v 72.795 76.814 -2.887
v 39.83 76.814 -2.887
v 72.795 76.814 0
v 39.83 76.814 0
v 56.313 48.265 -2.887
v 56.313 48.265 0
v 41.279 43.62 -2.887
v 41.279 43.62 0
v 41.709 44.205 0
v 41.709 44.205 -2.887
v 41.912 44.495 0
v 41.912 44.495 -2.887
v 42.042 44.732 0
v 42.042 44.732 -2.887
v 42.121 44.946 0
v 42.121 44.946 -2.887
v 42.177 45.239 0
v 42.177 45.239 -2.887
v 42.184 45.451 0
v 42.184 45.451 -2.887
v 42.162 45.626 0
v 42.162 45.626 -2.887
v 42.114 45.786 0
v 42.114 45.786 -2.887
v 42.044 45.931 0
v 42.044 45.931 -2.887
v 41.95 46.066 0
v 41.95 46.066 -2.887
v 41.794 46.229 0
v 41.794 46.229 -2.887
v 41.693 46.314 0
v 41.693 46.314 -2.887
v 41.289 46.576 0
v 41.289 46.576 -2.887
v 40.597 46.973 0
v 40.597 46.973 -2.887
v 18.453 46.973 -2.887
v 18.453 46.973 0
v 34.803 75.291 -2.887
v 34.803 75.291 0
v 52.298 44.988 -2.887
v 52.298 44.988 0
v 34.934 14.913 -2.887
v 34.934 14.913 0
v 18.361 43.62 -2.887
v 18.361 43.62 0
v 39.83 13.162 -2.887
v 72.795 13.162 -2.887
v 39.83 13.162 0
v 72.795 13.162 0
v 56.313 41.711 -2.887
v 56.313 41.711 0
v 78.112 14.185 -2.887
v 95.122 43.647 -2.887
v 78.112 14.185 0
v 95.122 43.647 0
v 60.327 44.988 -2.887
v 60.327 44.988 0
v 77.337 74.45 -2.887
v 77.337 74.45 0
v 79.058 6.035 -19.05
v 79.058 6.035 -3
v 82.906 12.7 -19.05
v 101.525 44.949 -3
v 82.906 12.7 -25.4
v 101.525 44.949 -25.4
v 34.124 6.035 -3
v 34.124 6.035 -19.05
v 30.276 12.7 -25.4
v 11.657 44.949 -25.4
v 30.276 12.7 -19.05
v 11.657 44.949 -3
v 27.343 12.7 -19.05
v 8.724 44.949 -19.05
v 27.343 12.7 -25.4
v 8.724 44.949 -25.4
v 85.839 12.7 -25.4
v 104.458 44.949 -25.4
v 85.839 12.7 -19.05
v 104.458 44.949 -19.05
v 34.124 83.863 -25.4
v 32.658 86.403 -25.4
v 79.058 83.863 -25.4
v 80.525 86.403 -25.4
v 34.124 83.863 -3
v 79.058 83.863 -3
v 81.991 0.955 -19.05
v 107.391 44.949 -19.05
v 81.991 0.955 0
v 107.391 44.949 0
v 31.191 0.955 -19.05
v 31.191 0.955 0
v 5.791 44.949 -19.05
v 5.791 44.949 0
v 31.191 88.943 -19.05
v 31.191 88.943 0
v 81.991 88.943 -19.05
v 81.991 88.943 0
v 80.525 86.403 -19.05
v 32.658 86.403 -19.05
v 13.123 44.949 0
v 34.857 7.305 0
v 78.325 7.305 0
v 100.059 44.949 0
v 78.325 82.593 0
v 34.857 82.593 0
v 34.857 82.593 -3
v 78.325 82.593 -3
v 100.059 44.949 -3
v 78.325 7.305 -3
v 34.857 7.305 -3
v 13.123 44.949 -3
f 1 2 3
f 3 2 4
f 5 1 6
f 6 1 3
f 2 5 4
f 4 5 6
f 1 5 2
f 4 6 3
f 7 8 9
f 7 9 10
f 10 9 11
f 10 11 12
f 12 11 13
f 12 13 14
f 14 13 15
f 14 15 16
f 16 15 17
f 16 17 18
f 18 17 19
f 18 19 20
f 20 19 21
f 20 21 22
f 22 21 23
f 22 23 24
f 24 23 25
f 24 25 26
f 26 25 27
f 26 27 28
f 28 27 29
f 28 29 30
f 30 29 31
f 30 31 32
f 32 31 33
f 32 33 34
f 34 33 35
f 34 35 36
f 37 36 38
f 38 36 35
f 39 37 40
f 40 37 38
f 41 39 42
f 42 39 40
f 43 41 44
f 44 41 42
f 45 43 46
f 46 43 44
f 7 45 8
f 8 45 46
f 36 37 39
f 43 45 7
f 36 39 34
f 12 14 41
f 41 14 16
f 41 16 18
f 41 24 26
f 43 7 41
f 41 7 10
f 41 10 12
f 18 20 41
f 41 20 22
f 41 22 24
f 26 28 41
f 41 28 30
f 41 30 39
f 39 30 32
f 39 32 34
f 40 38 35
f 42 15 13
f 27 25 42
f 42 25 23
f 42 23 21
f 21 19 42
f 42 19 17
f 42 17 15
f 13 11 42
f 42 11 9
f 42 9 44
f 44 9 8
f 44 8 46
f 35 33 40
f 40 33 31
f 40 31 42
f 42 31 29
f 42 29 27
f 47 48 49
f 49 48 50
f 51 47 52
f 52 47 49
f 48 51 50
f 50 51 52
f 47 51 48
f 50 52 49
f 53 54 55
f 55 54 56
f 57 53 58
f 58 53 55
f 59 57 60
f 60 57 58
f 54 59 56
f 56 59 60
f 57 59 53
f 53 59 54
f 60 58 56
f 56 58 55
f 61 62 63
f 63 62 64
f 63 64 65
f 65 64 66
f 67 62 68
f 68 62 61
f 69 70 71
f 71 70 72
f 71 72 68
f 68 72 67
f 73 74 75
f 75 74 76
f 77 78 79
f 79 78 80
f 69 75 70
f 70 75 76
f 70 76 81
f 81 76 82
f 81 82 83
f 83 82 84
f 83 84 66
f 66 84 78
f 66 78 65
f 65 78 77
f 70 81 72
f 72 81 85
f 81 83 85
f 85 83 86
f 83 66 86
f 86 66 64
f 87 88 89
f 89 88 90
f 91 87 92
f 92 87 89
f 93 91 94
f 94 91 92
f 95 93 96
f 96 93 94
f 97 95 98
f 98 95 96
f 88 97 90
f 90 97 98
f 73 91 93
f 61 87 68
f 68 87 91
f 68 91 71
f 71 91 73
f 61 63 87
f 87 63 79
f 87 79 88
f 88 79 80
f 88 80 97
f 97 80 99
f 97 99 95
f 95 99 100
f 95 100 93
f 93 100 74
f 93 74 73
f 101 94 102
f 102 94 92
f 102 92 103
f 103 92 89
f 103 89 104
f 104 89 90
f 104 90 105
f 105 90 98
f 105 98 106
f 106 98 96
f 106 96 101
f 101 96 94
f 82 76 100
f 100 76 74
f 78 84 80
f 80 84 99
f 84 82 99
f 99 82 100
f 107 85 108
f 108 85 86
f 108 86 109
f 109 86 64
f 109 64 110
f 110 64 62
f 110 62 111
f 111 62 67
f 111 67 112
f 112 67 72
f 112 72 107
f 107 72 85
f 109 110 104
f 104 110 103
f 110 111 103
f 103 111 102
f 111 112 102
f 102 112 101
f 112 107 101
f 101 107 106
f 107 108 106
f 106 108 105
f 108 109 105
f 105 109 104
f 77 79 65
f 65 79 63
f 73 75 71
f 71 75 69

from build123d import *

# Parameters (mm, degrees)
BOSS_EXTRUDE1_DEPTH   = 50.8
BOSS_EXTRUDE1_2_DEPTH = 50.8
BOSS_EXTRUDE1_3_DEPTH = 50.8
BOSS_EXTRUDE1_4_DEPTH = 50.8
SCALE2_SCALE          = 0.056837178
BOSS_EXTRUDE2_DEPTH   = 19.05
BOSS_EXTRUDE3_DEPTH   = 25.4
BOSS_EXTRUDE4_DEPTH   = 3
SKETCH5_W             = 76.2
SKETCH5_H             = 6.35
CUT_EXTRUDE1_DEPTH    = 12.7


with BuildPart() as part:
    # Sketch1 → Boss-Extrude1 (new body)
    with BuildSketch(Plane.XY):
        Polygon((700.771920951, 1351.480504637), (1280.771920951, 1351.480504637), (990.771920951, 849.185770443), align=None)
    extrude(amount=-BOSS_EXTRUDE1_DEPTH)


with BuildPart() as body_2:
    # Sketch1 → Boss-Extrude1 2 (new body)
    with BuildSketch(Plane.XY):
        with BuildLine():
            Line((612.319771216, 1324.684122016), (920.139059743, 791.525474739))
            Line((920.139059743, 791.525474739), (614.639059743, 262.383953026))
            Line((614.639059743, 262.383953026), (323.040465784, 767.447533178))
            Line((323.040465784, 767.447533178), (726.261001344, 767.447533178))
            add(Edge.make_bspline(
                [(726.261001344, 767.447533178), (731.261001344, 775.447533178), (738.972924833, 782.295227136), (741.261001344, 791.447533178), (746.676940536, 813.111289947), (727.862395623, 817.577058647), (714.261001344, 826.447533178)],
                knots=[0, 0, 0, 0, 1, 1, 1, 2, 2, 2, 2], degree=3))
            Line((714.261001344, 826.447533178), (324.66274253, 826.447533178))
            Line((324.66274253, 826.447533178), (612.319771216, 1324.684122016))
        make_face()
    extrude(amount=-BOSS_EXTRUDE1_2_DEPTH)


with BuildPart() as body_3:
    # Sketch1 → Boss-Extrude1 3 (new body)
    with BuildSketch(Plane.XY):
        Polygon((1360.681295443, 1309.887601259), (1673.580097254, 767.930978895), (1374.30358397, 249.568852374), (1061.404782158, 791.525474739), align=None)
    extrude(amount=-BOSS_EXTRUDE1_3_DEPTH)


with BuildPart() as body_4:
    # Sketch1 → Boss-Extrude1 4 (new body)
    with BuildSketch(Plane.XY):
        Polygon((990.771920951, 733.865179035), (1280.771920951, 231.57044484), (700.771920951, 231.57044484), align=None)
    extrude(amount=-BOSS_EXTRUDE1_4_DEPTH)


with BuildPart() as part_1:
    # Scale2: scaled about (0, 0, 0)
    add(part.part.scale(SCALE2_SCALE))


with BuildPart() as body_2_1:
    # Scale2: scaled about (0, 0, 0)
    add(body_2.part.scale(SCALE2_SCALE))


with BuildPart() as body_4_1:
    # Scale2: scaled about (0, 0, 0)
    add(body_4.part.scale(SCALE2_SCALE))


with BuildPart() as body_3_1:
    # Scale2: scaled about (0, 0, 0)
    add(body_3.part.scale(SCALE2_SCALE))


with BuildPart() as body_5:
    # Sketch2 → Boss-Extrude2 (new body)
    with BuildSketch(Plane.XY):
        Polygon((107.391144765, 44.94876217), (81.991144765, 88.942852683), (31.191144765, 88.942852683), (5.791144765, 44.94876217), (31.191144765, 0.954671658), (81.991144765, 0.954671658), align=None)
        Polygon((104.458205398, 44.94876217), (80.524675081, 86.402852683), (32.657614449, 86.402852683), (8.724084133, 44.94876217), (32.657614449, 3.494671658), (80.524675081, 3.494671658), align=None, mode=Mode.SUBTRACT)
    extrude(amount=-BOSS_EXTRUDE2_DEPTH)

    # Sketch3 → Boss-Extrude3 (add)
    with BuildSketch(Plane.XY):
        Polygon((104.458205398, 44.94876217), (80.524675081, 86.402852683), (32.657614449, 86.402852683), (8.724084133, 44.94876217), (32.657614449, 3.494671658), (80.524675081, 3.494671658), align=None)
        Polygon((101.52526603, 44.94876217), (79.058205398, 83.862852683), (34.124084133, 83.862852683), (11.6570235, 44.94876217), (34.124084133, 6.034671658), (79.058205398, 6.034671658), align=None, mode=Mode.SUBTRACT)
    extrude(amount=-BOSS_EXTRUDE3_DEPTH)

    # Sketch4 → Boss-Extrude4 (add)
    with BuildSketch(Plane.XY):
        Polygon((101.52526603, 44.94876217), (79.058205398, 83.862852683), (34.124084133, 83.862852683), (11.6570235, 44.94876217), (34.124084133, 6.034671658), (79.058205398, 6.034671658), align=None)
        Polygon((100.058796346, 44.94876217), (78.324970556, 82.592852683), (34.857318974, 82.592852683), (13.123493184, 44.94876217), (34.857318974, 7.304671658), (78.324970556, 7.304671658), align=None, mode=Mode.SUBTRACT)
    extrude(amount=-BOSS_EXTRUDE4_DEPTH)

    # Sketch5 → Cut-Extrude1 (cut)
    with BuildSketch(Plane(origin=(0, 0, 0), x_dir=(1, 0, 0), z_dir=(0, 1, 0))):
        with Locations((56.591144765, 22.225)):
            Rectangle(SKETCH5_W, SKETCH5_H)
    extrude(amount=CUT_EXTRUDE1_DEPTH, mode=Mode.SUBTRACT)


solid = Compound([part_1.part, body_2_1.part, body_4_1.part, body_3_1.part, body_5.part])
